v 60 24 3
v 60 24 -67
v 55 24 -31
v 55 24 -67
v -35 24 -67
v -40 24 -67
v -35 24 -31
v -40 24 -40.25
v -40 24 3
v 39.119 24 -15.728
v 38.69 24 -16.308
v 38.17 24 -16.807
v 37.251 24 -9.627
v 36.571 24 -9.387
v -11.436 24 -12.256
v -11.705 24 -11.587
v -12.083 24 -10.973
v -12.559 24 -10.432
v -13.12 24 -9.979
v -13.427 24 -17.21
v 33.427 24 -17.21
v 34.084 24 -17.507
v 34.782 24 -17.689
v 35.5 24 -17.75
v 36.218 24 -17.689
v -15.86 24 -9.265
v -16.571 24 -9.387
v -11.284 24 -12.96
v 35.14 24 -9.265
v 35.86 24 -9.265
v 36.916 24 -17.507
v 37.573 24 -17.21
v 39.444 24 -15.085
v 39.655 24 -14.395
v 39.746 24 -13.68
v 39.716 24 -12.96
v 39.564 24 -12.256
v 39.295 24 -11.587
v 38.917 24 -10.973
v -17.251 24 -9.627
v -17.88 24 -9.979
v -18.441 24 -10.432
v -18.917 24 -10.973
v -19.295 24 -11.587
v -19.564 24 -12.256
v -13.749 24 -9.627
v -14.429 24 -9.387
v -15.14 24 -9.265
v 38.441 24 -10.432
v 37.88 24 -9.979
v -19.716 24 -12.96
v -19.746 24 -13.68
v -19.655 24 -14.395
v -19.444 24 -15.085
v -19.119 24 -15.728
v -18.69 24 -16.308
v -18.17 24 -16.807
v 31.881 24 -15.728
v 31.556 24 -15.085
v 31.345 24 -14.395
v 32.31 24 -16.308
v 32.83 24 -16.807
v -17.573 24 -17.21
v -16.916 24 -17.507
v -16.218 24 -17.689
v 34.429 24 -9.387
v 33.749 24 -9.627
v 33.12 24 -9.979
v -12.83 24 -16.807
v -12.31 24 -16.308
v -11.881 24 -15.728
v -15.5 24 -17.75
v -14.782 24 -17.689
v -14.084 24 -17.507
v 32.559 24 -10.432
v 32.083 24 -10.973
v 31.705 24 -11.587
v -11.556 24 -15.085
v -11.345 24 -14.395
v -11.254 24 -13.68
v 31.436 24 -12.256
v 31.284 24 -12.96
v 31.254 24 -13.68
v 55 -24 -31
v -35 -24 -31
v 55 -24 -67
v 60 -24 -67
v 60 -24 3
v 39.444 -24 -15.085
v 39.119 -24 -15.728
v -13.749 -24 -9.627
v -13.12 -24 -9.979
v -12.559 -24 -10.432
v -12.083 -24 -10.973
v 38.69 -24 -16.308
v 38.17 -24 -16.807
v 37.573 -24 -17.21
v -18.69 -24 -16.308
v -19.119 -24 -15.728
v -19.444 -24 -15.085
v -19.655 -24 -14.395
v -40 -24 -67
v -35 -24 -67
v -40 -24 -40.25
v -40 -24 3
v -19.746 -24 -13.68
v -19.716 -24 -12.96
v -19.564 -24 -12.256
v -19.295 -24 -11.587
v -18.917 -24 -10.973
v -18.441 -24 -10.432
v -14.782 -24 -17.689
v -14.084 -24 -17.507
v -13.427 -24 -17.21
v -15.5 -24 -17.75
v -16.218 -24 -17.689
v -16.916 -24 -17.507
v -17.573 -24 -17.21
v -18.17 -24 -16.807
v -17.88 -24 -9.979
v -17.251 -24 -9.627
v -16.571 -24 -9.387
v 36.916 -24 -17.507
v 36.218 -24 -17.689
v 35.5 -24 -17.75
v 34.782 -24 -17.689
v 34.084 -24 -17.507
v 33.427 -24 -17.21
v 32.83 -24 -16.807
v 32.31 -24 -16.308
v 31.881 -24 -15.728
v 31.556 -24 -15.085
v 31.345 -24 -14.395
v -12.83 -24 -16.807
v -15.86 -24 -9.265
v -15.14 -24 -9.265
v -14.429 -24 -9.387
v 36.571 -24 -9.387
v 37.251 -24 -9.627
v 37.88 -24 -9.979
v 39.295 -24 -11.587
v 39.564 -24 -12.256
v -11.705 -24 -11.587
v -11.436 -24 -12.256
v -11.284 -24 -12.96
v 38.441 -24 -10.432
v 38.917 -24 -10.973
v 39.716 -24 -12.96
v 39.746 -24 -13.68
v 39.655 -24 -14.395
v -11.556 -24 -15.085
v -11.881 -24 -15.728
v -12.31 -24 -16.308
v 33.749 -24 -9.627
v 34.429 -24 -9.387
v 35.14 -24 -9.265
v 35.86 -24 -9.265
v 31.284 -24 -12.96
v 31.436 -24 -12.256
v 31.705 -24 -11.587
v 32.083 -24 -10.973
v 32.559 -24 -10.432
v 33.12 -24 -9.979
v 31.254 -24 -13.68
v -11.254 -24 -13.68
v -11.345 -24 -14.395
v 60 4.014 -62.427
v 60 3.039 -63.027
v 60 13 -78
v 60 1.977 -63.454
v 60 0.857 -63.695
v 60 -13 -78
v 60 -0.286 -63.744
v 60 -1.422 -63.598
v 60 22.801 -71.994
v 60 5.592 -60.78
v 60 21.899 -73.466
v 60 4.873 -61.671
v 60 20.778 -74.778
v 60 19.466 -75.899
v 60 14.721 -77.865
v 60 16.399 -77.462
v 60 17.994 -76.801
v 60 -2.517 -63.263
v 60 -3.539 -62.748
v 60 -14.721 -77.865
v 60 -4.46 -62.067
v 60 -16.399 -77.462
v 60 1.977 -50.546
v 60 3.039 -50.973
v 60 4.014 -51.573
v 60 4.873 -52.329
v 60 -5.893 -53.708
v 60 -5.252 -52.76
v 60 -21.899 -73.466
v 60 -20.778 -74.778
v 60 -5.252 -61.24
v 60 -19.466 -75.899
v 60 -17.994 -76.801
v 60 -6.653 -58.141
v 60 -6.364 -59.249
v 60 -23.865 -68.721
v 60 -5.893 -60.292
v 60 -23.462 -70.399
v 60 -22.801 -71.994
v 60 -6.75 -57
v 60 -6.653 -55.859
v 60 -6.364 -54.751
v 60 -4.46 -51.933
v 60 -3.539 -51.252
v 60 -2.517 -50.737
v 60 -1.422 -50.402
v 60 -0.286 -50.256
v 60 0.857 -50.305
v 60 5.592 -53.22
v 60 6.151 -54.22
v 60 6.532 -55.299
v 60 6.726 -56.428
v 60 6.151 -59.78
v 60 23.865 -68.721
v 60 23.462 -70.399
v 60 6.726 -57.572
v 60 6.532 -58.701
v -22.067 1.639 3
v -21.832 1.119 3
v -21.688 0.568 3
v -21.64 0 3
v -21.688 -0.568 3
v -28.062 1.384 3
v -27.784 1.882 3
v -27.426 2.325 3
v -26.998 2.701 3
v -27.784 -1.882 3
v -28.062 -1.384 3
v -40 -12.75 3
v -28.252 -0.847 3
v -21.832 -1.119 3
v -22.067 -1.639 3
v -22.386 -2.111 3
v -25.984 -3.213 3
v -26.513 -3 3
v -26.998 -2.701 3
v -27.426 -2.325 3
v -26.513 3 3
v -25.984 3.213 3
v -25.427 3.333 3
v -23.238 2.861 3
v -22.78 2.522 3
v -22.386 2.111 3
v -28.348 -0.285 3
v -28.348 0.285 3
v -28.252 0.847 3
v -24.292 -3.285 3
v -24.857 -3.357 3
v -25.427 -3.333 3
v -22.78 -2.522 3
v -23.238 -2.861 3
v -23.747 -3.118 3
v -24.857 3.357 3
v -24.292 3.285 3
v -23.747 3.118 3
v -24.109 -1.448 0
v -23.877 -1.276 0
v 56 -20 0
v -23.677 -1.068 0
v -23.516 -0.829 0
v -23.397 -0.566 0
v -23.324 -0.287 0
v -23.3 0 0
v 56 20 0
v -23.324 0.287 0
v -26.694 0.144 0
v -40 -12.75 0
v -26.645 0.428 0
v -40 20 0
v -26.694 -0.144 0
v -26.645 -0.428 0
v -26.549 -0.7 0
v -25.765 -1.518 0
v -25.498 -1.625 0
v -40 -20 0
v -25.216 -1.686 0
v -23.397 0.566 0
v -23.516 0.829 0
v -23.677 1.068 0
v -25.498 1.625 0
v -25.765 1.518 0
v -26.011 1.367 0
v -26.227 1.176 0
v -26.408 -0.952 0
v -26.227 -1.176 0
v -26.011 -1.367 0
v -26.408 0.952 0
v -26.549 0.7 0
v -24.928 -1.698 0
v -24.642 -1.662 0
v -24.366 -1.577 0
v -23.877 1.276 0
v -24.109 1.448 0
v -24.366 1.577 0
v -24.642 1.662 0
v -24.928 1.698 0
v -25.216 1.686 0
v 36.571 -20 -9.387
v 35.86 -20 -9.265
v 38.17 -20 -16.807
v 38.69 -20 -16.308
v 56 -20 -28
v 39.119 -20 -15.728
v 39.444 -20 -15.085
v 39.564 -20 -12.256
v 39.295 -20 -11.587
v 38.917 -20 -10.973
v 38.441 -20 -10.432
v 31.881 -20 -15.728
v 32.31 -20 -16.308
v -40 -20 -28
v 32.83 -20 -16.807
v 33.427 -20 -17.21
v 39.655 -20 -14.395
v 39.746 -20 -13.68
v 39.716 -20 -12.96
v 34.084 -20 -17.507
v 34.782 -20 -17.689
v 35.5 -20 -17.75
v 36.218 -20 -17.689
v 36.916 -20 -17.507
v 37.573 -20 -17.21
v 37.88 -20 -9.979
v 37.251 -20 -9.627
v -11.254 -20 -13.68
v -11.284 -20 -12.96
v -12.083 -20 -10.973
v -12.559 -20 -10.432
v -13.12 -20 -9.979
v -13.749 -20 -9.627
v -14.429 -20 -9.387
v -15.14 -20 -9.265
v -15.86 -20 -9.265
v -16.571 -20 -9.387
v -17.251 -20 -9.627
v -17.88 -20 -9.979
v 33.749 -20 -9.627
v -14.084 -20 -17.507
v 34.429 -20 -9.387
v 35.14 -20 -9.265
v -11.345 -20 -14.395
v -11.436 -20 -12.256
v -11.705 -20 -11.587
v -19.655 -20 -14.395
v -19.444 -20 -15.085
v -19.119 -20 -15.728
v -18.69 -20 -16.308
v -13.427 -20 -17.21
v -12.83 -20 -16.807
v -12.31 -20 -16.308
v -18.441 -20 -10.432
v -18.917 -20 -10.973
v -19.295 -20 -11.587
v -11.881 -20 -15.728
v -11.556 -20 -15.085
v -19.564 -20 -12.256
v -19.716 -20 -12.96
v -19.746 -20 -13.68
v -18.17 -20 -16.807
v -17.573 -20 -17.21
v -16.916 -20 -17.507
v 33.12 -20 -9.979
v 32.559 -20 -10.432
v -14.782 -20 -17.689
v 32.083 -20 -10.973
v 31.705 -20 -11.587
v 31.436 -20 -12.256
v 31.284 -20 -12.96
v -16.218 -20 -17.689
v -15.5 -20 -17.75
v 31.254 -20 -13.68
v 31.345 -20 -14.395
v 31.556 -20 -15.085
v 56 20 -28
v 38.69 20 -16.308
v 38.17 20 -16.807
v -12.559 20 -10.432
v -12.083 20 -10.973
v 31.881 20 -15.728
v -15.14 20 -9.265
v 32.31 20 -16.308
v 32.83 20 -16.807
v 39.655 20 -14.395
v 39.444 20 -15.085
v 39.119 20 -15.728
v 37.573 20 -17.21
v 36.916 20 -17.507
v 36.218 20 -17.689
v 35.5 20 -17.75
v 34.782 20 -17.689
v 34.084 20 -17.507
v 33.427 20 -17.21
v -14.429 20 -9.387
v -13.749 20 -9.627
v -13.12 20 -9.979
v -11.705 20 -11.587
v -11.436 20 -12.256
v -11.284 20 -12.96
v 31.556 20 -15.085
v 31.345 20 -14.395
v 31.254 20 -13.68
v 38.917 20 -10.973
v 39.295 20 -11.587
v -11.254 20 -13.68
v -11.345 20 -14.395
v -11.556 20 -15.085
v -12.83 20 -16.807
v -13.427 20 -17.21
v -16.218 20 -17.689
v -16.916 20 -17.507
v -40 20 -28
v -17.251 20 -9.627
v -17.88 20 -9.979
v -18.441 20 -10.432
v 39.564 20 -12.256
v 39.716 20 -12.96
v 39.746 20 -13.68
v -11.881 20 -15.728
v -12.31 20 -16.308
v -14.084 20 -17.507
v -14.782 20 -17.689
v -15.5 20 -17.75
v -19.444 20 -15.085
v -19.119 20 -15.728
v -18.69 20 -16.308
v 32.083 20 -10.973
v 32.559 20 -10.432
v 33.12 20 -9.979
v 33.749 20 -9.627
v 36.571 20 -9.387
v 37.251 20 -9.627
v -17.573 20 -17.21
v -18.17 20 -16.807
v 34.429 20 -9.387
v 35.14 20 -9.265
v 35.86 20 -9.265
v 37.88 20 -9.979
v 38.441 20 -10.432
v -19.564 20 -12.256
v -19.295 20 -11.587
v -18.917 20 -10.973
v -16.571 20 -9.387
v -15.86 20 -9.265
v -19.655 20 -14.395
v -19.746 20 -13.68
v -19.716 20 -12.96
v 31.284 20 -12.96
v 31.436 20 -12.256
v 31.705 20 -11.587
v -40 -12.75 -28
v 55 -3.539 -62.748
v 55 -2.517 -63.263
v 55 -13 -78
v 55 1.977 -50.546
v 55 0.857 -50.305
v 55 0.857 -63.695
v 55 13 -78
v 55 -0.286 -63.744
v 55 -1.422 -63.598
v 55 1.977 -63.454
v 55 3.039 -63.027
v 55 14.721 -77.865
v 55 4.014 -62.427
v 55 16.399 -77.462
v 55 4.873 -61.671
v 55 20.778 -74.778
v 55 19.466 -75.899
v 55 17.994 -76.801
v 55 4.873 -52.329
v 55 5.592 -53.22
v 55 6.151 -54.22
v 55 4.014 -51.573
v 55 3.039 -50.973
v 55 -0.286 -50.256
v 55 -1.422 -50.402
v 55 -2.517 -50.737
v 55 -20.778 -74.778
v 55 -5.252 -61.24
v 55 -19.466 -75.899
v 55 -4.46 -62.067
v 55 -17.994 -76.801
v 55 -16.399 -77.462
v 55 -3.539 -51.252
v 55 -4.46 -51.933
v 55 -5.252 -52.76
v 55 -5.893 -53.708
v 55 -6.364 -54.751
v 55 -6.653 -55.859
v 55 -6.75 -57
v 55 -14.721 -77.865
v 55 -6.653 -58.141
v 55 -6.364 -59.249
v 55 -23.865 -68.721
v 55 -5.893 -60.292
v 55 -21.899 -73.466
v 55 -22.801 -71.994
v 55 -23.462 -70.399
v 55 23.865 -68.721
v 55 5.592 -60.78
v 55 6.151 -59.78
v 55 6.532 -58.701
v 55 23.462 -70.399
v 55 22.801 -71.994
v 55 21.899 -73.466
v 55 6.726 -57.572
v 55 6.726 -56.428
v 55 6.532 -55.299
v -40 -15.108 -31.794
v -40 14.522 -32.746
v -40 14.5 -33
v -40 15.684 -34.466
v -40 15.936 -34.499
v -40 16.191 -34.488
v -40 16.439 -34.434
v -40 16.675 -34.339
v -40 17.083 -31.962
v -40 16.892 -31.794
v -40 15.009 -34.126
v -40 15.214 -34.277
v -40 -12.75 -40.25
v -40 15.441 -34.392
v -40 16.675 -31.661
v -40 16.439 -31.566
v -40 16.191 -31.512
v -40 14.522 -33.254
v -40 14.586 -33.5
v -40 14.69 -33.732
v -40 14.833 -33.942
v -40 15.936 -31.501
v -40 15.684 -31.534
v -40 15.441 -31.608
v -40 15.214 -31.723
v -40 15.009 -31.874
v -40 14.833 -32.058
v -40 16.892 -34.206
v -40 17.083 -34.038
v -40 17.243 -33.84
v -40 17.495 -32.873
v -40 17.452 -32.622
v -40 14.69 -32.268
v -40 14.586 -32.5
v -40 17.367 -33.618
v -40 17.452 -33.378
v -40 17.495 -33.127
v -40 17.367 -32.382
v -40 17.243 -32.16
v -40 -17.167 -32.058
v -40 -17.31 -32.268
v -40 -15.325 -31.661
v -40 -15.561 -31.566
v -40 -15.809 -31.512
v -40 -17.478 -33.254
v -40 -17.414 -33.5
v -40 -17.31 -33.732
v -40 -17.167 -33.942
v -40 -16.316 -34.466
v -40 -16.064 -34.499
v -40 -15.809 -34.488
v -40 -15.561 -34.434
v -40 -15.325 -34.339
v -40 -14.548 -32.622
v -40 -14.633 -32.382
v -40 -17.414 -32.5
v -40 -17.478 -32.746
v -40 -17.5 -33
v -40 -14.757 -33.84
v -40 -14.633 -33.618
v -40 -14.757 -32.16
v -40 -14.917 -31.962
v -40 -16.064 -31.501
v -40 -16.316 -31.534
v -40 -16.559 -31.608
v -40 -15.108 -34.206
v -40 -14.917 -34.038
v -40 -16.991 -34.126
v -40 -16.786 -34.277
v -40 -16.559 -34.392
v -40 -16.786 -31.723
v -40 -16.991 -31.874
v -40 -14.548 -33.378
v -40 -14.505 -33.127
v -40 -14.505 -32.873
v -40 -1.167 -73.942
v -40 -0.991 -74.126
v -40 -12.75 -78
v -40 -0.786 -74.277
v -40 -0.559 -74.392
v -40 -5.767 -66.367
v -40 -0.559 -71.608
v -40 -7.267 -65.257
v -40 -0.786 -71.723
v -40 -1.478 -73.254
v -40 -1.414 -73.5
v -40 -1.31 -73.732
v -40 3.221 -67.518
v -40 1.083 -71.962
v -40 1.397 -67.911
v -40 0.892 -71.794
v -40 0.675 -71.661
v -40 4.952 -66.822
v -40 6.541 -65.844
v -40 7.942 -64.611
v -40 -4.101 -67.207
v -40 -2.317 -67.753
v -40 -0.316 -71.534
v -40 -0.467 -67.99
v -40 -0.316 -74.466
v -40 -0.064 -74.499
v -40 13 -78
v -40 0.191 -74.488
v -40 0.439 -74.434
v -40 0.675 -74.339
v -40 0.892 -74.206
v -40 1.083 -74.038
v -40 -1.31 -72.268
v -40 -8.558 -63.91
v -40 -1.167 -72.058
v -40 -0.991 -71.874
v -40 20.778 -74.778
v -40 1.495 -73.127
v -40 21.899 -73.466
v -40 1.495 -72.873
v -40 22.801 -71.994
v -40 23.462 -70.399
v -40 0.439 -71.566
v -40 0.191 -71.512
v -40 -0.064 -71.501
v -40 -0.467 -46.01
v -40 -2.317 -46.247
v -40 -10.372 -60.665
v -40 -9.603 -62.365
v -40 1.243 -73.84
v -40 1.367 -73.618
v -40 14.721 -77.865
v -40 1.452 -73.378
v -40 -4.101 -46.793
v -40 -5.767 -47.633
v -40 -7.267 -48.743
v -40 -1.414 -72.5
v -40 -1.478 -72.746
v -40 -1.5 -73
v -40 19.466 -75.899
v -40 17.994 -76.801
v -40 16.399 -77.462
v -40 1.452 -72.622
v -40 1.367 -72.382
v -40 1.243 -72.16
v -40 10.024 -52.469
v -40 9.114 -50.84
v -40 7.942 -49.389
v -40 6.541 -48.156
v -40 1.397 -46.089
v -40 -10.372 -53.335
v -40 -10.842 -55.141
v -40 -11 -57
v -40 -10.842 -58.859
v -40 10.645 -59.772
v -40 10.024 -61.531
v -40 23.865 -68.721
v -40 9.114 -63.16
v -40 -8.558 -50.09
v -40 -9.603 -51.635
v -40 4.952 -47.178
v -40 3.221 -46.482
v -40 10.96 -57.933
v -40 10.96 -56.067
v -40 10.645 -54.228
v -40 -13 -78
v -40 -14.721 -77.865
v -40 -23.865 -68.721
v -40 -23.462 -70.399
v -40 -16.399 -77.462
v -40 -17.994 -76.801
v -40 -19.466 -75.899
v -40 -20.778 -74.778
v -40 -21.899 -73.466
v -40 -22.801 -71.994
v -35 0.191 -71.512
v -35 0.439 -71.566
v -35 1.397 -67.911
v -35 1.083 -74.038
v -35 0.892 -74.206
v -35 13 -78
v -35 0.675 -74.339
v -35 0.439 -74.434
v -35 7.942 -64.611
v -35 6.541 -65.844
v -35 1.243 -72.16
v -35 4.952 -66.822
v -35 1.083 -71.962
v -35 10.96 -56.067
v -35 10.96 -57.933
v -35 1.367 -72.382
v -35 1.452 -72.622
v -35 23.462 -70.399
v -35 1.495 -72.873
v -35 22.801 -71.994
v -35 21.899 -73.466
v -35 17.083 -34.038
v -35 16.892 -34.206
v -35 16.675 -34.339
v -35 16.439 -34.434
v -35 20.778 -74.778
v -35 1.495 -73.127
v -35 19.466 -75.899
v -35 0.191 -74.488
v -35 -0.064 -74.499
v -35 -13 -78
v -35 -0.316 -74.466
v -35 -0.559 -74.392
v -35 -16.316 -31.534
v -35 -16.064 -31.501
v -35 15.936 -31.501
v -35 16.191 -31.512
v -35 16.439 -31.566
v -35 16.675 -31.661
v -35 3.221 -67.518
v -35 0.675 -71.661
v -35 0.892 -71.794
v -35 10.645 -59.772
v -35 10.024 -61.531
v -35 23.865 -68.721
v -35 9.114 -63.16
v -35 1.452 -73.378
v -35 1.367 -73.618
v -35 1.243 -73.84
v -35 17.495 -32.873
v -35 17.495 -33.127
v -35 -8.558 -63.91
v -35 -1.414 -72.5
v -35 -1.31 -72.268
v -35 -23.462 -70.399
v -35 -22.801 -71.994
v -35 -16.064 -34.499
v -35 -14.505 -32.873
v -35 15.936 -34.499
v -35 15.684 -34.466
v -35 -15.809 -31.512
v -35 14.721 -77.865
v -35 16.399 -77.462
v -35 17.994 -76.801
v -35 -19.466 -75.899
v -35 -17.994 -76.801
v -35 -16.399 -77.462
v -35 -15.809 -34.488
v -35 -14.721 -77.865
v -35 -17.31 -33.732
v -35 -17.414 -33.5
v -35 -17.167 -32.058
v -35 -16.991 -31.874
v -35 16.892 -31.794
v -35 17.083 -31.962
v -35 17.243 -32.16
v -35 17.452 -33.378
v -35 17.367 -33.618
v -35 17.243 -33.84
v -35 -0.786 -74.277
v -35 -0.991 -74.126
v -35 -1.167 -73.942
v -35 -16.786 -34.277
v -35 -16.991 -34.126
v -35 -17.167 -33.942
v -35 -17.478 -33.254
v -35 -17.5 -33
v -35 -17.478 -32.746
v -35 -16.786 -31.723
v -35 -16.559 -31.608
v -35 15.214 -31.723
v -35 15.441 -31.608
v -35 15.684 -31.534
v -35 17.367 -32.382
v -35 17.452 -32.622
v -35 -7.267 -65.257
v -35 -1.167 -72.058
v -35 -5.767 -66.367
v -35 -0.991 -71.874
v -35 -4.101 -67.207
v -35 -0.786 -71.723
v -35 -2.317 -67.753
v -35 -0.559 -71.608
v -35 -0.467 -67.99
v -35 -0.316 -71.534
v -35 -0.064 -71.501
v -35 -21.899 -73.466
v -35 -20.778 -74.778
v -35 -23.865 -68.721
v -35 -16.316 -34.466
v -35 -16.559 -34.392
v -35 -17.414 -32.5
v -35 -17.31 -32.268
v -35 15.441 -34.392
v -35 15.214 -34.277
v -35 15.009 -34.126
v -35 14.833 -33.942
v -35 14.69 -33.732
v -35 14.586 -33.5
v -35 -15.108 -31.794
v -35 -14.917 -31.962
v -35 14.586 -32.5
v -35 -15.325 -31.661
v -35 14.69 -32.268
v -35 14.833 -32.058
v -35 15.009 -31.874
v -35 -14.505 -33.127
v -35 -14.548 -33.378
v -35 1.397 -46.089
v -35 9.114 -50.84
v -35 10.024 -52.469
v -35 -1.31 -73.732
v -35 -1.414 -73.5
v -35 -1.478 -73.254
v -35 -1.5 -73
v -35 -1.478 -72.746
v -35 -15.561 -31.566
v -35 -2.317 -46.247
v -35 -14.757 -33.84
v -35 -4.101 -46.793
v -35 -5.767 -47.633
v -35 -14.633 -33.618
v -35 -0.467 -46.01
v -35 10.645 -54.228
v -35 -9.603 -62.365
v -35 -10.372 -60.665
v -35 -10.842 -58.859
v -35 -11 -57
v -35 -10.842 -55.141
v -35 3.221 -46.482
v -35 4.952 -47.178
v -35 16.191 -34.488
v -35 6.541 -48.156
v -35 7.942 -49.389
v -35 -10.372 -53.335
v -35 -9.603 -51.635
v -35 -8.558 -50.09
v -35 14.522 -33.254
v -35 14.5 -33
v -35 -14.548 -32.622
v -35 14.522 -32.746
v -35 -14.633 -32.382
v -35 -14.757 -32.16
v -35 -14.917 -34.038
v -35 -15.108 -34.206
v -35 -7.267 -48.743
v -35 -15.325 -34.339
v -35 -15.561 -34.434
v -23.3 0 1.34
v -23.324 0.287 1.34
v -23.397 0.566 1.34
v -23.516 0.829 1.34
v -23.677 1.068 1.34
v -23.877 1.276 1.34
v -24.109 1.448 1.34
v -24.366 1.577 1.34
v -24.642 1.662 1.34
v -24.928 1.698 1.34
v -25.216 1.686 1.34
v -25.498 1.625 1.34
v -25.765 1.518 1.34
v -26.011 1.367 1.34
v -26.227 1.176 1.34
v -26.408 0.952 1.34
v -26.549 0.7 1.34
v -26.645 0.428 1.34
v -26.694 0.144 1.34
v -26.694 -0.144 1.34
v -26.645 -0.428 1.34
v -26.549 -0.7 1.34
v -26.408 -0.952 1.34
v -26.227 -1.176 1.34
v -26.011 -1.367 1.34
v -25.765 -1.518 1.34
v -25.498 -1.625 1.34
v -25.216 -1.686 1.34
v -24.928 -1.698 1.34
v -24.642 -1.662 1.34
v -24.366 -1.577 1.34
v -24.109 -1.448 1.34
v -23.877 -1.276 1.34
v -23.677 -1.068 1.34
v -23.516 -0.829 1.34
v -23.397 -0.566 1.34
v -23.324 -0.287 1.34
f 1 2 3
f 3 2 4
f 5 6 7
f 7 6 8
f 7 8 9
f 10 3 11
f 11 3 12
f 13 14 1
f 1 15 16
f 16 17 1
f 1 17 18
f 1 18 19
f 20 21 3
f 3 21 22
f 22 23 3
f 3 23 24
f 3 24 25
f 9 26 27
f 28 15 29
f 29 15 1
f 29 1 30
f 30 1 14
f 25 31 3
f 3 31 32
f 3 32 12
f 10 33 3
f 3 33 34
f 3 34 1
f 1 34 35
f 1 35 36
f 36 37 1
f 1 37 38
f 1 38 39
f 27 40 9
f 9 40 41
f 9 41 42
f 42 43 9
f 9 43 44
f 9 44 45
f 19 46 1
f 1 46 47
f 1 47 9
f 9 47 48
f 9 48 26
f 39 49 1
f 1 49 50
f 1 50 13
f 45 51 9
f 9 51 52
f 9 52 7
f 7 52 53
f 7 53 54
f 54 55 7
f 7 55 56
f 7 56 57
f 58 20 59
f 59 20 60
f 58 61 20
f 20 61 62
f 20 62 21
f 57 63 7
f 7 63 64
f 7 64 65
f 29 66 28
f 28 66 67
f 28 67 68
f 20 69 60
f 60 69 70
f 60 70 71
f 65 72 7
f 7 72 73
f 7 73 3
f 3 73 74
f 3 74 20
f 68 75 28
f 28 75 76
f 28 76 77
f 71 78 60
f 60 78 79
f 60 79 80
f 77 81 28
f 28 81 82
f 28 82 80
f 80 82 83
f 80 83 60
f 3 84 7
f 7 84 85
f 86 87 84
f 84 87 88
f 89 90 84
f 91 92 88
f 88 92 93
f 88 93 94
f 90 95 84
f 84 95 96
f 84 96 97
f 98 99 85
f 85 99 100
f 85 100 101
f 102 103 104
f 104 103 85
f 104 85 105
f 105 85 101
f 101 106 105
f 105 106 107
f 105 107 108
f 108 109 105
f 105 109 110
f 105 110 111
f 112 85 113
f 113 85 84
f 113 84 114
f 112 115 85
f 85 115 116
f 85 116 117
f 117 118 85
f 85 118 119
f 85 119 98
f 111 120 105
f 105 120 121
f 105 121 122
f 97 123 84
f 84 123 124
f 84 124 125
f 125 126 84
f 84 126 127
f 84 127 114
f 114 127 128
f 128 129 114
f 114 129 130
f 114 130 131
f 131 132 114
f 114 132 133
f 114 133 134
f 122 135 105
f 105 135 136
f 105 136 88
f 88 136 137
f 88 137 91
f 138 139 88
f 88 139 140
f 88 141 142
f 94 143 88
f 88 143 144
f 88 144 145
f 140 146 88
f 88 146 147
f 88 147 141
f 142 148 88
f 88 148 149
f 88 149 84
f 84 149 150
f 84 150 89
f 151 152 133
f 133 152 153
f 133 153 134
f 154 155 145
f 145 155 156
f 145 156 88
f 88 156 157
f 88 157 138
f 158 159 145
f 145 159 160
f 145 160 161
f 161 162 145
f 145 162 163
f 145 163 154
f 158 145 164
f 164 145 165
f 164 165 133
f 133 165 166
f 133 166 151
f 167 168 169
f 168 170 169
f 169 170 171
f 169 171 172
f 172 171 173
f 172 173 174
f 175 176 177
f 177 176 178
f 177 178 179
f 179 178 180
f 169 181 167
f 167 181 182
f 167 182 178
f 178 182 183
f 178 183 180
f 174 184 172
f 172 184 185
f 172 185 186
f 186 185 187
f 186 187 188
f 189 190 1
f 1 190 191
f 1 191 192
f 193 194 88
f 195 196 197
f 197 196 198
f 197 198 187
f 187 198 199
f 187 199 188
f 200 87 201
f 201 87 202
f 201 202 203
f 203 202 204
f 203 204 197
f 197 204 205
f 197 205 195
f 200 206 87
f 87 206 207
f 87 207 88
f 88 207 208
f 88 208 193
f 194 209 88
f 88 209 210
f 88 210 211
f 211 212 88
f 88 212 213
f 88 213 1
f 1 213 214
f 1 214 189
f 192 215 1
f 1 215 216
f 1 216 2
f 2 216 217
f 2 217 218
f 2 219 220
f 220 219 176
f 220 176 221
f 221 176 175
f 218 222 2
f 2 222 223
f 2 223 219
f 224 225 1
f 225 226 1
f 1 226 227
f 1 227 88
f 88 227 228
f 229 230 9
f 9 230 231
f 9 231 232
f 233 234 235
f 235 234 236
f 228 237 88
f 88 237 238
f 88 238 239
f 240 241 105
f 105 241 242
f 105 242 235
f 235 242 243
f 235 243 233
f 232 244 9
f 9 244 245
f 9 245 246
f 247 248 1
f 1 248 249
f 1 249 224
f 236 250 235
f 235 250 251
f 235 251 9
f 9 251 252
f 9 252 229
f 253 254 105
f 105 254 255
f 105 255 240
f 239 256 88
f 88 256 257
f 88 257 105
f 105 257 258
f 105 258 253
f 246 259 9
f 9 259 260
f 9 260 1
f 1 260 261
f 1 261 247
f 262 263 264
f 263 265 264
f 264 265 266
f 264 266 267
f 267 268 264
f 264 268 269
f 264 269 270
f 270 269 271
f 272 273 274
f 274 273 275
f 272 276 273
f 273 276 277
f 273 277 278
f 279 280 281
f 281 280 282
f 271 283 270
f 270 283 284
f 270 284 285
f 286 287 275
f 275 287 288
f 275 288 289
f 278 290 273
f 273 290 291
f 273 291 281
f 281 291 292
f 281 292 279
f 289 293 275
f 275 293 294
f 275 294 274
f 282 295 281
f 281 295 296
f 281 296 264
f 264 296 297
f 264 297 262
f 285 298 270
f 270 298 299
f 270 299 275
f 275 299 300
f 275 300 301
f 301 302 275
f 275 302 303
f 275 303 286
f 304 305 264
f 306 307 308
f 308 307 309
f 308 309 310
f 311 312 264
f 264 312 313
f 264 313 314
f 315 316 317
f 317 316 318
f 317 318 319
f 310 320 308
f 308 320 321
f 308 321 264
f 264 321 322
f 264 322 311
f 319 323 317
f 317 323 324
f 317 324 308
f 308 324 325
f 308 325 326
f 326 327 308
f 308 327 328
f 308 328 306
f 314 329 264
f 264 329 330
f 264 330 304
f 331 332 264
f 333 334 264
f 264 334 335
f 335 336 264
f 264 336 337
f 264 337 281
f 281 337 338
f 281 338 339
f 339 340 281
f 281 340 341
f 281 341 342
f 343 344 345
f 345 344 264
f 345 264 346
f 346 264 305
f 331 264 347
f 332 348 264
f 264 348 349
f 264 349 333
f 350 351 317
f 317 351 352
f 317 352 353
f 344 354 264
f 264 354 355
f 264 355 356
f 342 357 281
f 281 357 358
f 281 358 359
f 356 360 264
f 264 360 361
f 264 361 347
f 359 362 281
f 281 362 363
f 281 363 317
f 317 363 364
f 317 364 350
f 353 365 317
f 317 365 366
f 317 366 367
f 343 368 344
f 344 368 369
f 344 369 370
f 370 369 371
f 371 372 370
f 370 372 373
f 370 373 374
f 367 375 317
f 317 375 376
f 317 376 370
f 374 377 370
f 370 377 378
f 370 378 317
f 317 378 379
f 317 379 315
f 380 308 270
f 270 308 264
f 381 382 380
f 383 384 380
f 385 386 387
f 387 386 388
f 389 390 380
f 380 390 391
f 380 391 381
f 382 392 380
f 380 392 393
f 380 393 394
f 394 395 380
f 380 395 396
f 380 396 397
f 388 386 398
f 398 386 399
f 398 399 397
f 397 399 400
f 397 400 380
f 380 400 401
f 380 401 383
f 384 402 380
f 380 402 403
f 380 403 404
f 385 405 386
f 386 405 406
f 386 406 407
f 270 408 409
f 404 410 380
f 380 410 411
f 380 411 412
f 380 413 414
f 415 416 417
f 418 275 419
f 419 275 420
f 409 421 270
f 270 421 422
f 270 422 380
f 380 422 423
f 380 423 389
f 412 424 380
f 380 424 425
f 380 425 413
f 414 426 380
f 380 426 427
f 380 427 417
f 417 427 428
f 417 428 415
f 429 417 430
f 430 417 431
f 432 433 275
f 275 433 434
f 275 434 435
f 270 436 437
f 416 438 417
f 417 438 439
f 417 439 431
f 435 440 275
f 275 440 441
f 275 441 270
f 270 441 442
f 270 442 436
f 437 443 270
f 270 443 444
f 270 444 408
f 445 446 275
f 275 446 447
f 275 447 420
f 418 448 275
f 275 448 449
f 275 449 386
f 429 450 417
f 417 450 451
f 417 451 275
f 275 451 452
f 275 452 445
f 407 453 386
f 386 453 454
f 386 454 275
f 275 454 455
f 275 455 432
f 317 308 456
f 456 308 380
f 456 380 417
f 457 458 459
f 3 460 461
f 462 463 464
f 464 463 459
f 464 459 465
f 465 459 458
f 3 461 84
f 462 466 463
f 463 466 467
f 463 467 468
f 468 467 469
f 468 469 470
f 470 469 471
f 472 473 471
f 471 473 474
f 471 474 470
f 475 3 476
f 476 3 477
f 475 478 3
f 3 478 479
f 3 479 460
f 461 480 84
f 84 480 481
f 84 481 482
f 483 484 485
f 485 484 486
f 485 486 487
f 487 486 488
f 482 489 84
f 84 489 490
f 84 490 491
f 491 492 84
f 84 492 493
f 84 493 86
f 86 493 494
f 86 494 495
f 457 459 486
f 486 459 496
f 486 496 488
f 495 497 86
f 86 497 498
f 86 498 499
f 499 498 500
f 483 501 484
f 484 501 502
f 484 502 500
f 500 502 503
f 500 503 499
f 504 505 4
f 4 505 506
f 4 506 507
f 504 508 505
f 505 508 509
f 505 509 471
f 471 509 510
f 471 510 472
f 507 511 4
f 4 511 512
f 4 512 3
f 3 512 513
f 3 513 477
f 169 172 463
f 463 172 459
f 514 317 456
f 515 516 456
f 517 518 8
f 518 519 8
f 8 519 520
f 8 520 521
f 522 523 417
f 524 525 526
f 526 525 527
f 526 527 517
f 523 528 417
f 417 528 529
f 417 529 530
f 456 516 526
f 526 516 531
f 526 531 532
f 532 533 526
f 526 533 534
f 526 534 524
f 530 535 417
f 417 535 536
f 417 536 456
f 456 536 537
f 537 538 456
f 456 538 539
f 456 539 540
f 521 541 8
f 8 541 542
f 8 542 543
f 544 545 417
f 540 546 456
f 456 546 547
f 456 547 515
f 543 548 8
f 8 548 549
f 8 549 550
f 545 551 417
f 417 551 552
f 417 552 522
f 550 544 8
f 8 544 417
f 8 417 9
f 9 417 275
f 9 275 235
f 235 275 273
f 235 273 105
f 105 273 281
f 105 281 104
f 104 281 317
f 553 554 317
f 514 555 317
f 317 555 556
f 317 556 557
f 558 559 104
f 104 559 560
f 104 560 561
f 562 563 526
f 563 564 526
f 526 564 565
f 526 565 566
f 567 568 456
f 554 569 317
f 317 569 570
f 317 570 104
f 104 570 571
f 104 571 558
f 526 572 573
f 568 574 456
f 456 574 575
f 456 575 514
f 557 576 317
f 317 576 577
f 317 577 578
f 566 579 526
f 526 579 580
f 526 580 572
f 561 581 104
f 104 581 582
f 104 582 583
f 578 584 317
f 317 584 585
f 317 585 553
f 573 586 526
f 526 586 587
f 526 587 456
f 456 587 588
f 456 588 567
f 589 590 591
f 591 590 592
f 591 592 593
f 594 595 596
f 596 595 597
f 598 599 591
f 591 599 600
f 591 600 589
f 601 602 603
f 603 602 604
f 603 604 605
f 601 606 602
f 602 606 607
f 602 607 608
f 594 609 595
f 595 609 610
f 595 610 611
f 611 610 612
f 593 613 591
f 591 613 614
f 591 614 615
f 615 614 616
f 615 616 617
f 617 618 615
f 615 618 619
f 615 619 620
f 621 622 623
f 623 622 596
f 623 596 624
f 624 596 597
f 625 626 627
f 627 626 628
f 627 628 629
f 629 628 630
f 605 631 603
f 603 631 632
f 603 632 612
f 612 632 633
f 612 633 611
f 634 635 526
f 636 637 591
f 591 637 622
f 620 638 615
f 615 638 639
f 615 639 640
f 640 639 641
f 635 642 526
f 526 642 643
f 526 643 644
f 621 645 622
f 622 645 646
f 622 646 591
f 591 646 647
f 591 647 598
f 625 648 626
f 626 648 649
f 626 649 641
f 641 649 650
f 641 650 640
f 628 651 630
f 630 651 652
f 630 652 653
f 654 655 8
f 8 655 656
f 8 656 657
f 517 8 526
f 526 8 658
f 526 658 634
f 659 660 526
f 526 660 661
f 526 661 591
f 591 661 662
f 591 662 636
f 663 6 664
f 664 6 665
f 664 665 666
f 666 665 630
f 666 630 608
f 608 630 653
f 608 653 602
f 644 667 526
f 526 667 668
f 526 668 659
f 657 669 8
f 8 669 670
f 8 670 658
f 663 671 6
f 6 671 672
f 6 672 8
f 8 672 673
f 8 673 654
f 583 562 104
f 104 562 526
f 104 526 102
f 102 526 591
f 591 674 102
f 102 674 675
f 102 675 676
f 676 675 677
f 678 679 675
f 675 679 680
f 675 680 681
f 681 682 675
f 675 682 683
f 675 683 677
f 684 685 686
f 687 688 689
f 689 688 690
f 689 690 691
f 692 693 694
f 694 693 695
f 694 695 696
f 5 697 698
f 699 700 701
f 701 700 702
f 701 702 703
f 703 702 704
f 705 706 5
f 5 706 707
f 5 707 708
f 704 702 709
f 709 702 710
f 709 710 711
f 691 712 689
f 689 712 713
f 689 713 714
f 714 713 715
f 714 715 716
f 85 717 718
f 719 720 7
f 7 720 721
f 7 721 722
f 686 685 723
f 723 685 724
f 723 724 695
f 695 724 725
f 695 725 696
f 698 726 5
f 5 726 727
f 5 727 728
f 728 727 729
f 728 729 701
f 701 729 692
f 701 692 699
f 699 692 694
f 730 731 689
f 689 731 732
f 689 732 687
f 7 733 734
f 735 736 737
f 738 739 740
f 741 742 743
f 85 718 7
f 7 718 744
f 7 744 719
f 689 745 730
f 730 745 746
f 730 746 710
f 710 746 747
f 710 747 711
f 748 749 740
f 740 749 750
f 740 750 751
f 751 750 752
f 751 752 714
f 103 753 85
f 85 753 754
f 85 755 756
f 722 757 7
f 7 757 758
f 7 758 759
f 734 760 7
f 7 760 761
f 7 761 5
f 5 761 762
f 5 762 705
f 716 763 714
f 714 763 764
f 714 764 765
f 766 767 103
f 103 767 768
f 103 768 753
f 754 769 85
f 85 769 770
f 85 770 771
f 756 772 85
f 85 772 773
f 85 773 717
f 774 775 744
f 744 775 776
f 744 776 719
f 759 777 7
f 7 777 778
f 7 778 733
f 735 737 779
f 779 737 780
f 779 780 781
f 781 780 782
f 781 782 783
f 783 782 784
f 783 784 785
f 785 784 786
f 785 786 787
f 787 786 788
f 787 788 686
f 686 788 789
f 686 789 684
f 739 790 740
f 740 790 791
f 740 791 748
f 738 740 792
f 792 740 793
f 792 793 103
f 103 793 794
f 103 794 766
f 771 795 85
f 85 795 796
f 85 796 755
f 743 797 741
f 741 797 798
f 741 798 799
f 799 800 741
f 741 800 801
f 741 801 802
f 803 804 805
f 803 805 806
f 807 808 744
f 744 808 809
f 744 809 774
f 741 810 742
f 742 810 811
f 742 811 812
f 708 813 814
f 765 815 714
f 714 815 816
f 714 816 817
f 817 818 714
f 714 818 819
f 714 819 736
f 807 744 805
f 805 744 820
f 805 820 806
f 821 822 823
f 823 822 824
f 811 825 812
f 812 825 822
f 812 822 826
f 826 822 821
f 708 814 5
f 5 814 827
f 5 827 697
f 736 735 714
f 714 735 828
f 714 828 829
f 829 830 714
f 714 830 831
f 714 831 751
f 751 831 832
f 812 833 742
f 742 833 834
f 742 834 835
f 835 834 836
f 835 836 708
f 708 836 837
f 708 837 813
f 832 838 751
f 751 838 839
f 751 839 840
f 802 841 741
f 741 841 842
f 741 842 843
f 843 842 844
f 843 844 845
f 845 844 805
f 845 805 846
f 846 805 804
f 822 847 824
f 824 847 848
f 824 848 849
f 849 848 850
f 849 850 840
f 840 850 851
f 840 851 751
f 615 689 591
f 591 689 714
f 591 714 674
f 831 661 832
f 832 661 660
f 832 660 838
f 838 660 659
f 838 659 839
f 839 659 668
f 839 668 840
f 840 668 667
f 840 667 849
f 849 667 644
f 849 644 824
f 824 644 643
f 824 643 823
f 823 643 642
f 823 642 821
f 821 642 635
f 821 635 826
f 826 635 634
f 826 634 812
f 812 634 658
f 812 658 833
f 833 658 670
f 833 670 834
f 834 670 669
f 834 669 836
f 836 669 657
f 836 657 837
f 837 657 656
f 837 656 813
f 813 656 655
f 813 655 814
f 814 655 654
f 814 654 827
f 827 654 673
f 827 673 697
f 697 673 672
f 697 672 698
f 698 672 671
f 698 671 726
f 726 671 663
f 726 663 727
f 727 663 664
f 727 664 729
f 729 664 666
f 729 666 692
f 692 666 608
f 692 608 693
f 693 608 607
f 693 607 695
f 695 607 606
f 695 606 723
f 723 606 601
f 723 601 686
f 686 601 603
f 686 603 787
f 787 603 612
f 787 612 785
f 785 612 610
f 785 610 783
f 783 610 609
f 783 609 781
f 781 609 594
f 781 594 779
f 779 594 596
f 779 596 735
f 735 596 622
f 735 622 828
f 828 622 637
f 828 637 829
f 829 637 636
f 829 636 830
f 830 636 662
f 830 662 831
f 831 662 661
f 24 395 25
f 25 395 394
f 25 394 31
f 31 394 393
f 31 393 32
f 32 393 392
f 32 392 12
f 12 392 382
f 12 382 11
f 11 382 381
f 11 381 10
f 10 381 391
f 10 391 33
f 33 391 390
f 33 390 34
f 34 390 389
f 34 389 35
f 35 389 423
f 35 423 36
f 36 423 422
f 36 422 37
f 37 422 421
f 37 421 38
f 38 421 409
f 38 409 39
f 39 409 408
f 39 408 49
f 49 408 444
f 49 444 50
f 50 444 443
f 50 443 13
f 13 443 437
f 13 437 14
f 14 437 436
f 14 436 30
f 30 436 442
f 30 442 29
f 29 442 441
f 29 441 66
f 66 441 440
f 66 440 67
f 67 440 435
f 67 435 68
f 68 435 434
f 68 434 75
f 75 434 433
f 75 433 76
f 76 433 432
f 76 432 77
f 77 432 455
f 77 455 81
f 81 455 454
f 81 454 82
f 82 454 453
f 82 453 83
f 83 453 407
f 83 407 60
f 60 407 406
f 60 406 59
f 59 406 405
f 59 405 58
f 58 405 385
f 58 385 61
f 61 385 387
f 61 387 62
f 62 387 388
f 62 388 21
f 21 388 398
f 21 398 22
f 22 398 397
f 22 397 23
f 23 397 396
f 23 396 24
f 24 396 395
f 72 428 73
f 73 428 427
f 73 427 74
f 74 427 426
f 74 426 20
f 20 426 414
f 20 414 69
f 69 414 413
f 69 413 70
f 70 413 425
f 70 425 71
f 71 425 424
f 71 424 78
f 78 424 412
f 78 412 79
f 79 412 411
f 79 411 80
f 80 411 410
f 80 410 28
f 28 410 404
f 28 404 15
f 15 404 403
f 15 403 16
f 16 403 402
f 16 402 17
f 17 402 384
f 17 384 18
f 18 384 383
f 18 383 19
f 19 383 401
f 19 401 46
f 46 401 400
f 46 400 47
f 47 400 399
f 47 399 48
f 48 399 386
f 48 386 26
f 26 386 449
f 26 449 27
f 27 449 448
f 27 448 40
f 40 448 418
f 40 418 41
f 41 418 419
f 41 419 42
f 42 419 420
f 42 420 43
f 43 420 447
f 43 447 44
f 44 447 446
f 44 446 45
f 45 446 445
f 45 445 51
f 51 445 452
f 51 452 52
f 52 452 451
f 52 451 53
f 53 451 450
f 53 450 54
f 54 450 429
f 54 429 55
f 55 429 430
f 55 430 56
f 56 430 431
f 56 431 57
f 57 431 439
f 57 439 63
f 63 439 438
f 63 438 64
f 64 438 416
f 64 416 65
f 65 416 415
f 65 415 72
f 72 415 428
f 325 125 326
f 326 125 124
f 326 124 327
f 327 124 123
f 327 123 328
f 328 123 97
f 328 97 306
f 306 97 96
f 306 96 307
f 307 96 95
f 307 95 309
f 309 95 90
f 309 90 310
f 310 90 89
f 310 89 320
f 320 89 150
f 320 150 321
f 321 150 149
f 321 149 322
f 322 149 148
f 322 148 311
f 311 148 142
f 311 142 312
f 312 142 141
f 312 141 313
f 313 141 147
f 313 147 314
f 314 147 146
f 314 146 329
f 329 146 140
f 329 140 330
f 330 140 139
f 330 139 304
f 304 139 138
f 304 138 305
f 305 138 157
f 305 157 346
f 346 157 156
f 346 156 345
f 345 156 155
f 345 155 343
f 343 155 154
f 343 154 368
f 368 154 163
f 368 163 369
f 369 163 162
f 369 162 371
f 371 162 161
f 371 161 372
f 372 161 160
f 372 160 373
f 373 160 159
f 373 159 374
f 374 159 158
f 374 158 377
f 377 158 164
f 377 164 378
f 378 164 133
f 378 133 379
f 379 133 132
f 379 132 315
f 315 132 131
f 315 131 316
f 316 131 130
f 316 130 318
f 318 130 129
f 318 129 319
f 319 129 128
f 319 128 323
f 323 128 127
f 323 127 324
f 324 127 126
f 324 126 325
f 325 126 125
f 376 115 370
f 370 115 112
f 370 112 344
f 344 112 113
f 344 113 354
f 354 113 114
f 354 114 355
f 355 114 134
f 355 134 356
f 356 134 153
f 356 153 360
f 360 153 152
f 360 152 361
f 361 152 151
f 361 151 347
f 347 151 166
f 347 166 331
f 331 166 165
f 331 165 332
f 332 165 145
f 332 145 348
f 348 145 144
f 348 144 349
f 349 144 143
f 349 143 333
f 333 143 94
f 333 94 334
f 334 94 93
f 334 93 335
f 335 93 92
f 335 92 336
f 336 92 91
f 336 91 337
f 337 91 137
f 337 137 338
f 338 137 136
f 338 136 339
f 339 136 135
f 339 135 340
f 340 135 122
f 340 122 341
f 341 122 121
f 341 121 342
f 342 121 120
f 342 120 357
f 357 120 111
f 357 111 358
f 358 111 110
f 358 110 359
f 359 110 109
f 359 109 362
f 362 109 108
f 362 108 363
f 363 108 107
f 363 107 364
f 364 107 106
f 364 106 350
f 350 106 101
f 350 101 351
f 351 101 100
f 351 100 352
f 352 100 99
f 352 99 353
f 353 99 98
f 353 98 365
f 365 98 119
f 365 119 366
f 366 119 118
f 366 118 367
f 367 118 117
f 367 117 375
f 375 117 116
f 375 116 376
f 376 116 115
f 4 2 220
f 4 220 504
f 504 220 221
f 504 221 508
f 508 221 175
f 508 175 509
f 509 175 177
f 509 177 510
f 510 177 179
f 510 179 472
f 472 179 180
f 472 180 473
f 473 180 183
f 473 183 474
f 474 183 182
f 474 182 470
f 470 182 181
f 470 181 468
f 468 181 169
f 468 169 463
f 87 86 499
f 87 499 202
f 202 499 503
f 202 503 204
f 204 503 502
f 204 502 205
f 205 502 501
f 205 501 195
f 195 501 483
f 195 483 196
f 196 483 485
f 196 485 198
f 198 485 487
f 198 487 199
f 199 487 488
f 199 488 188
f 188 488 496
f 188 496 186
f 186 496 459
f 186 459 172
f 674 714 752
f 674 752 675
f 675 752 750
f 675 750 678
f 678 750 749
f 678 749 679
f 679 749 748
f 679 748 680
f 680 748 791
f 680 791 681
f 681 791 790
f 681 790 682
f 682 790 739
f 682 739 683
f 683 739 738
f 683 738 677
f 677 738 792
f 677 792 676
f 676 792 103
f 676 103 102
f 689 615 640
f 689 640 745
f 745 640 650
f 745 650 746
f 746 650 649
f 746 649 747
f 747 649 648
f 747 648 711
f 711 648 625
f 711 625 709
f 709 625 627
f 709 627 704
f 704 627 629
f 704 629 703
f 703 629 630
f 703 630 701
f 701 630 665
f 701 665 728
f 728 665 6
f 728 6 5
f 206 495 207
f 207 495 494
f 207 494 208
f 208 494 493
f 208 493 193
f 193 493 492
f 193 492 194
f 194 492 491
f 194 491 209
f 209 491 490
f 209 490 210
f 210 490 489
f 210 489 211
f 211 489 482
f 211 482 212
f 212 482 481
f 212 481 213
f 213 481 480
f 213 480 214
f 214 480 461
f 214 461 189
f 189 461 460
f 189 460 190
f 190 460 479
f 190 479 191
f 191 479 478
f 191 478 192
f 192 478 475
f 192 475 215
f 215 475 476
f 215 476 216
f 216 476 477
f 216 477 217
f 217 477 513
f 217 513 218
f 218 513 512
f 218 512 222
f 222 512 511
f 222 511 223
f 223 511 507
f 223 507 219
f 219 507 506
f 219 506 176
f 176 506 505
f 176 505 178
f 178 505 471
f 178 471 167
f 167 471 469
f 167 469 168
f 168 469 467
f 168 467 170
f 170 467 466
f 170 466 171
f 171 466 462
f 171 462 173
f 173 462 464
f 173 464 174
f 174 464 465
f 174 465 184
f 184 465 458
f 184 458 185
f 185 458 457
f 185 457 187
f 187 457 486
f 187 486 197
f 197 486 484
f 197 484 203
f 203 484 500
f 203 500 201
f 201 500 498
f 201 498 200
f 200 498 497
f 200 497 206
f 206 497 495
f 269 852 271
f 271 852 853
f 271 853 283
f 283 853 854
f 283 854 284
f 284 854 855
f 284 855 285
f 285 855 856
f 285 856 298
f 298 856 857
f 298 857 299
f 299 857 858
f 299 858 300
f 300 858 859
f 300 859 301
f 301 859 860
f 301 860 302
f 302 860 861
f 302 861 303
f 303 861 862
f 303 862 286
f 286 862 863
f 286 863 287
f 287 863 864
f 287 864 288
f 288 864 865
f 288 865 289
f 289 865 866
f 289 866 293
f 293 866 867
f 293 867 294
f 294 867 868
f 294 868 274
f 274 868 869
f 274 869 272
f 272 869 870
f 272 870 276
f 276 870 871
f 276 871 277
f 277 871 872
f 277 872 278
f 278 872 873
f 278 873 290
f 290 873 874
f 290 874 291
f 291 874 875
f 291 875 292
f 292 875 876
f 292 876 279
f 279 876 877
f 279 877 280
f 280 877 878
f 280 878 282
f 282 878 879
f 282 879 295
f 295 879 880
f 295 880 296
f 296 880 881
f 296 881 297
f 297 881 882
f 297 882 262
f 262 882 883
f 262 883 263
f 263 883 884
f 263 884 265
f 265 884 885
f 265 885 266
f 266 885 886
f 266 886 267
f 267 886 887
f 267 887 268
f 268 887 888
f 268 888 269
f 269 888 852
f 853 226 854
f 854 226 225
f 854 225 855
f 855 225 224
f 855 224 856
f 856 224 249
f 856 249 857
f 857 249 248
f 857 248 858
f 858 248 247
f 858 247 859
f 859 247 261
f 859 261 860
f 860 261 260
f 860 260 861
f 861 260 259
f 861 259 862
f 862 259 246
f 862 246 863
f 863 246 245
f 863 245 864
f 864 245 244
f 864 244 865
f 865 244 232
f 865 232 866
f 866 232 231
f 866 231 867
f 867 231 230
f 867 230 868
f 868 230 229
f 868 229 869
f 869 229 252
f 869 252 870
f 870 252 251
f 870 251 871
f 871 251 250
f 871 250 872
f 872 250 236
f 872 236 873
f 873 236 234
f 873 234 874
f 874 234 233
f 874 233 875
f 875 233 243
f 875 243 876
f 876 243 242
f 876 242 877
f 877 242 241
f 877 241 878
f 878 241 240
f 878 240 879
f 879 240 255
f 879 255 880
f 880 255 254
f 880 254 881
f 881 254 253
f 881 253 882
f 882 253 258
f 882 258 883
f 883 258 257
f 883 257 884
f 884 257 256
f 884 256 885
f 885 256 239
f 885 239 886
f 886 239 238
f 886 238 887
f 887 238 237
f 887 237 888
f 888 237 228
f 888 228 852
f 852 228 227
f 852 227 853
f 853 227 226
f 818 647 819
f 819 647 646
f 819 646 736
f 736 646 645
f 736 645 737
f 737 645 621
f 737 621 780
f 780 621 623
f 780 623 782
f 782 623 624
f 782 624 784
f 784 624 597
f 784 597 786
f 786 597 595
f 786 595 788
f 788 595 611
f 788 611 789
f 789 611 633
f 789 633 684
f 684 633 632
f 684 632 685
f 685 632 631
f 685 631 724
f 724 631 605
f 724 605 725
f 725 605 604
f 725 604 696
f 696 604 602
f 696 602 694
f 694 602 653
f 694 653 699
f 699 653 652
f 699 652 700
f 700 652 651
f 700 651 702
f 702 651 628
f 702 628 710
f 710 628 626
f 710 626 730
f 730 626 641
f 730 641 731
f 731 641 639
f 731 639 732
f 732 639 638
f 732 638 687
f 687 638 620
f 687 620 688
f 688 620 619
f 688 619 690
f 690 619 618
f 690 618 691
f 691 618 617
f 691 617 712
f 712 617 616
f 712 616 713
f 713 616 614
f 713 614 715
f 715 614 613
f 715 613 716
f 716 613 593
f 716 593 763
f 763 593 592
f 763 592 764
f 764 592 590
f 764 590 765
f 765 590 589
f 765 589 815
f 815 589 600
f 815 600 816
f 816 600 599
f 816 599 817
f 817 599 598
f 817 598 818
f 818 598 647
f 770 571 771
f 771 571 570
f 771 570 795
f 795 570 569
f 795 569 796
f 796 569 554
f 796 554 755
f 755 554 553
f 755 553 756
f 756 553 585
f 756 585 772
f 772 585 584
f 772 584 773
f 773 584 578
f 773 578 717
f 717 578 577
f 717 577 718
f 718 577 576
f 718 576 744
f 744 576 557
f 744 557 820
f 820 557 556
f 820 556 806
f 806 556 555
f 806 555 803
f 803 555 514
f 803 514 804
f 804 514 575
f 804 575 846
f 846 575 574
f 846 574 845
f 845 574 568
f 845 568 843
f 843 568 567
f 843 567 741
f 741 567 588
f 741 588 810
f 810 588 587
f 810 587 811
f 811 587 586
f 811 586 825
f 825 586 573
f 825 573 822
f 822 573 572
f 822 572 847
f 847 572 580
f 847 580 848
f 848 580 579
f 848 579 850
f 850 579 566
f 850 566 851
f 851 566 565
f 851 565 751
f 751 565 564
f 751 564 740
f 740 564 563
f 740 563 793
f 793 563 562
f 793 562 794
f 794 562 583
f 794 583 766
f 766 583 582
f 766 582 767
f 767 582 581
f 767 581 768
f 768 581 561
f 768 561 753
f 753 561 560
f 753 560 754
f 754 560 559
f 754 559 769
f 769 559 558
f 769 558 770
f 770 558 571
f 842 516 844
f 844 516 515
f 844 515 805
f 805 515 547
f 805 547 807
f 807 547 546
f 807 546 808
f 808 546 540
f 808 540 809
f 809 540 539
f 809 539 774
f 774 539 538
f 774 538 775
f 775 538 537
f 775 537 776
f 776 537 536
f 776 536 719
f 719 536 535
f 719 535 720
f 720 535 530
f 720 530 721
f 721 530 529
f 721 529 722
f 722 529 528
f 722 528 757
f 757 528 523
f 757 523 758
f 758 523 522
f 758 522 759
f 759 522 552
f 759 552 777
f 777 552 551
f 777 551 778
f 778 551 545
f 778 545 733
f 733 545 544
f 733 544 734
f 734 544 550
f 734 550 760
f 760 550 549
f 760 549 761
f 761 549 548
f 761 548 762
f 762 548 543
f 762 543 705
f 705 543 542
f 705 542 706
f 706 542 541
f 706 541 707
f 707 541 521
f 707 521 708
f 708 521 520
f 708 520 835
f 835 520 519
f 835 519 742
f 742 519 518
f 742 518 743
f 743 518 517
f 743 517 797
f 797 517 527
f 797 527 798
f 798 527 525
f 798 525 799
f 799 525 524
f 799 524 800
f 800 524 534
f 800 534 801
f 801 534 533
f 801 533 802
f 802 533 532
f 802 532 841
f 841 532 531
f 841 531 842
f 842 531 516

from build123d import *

# Parameters (mm, degrees)
ESBO_O1_W                            = 48
ESBO_O1_H                            = 120
RESSALTO_EXTRUS_O1_DEPTH             = 3
RESSALTO_EXTRUS_O2_DEPTH             = 28
ESBO_O3_W                            = 120
ESBO_O3_H                            = 48
RESSALTO_EXTRUS_O3_DEPTH             = 3
ESBO_O4_W                            = 5
ESBO_O4_H                            = 48
RESSALTO_EXTRUS_O4_DEPTH             = 47
ESBO_O5_R                            = 11
CORTE_EXTRUS_O1_DEPTH                = 5
ESBO_O6_R                            = 4.25
CORTE_EXTRUS_O2_DEPTH                = 110.489725545
FILETE1_R                            = 11
ESBO_O7_R                            = 6.75
CORTE_EXTRUS_O3_DEPTH                = 142.014183684
ESBO_O8_W                            = 20
ESBO_O8_H                            = 48
CORTE_EXTRUS_O4_DEPTH                = 80.906195004
ESBO_O12_R                           = 1.5
CORTE_EXTRUS_O5_DEPTH                = 3
ESCAREADO_PARA_SFHCS_M31_D           = 3.4
ESCAREADO_PARA_SFHCS_M31_DEPTH       = 3
ESCAREADO_PARA_SFHCS_M31_CSINK_D     = 6.72
ESCAREADO_PARA_SFHCS_M31_CSINK_ANGLE = 90
ESCAREADO_PARA_SFHCS_M31_TIP         = 1.021463052
ESBO_O18_R                           = 1.5
CORTE_EXTRUS_O6_DEPTH                = 5


with BuildPart() as part:
    # Esboço1 → Ressalto-extrusão1 (new body)
    with BuildSketch(Plane(origin=(0, 0, 0), x_dir=(0, 1, 0), z_dir=(0, 0, 1))):
        Rectangle(ESBO_O1_W, ESBO_O1_H)
    extrude(amount=RESSALTO_EXTRUS_O1_DEPTH)

    # Esboço2 → Ressalto-extrusão2 (add)
    with BuildSketch(Plane(origin=(0, 0, 0), x_dir=(1, 0, 0), z_dir=(0, 0, -1))):
        Polygon((-60, -20), (-60, -24), (60, -24), (60, 24), (-60, 24), (-60, 20), (56, 20), (56, -20), align=None)
    extrude(amount=RESSALTO_EXTRUS_O2_DEPTH)

    # Esboço3 → Ressalto-extrusão3 (add)
    with BuildSketch(Plane(origin=(0, 0, -28), x_dir=(1, 0, 0), z_dir=(0, 0, -1))):
        Rectangle(ESBO_O3_W, ESBO_O3_H)
    extrude(amount=RESSALTO_EXTRUS_O3_DEPTH)

    # Esboço4 → Ressalto-extrusão4 (add)
    with BuildSketch(Plane(origin=(0, 0, -31), x_dir=(1, 0, 0), z_dir=(0, 0, -1))):
        with Locations((-37.5, 0)):
            Rectangle(ESBO_O4_W, ESBO_O4_H)
        with Locations((57.5, 0)):
            Rectangle(ESBO_O4_W, ESBO_O4_H)
    extrude(amount=RESSALTO_EXTRUS_O4_DEPTH)

    # Esboço5 → Corte-extrusão1 (cut)
    with BuildSketch(Plane(origin=(-40, 0, 0), x_dir=(0, -1, 0), z_dir=(-1, 0, 0))):
        with Locations((0, -57)):
            Circle(ESBO_O5_R)
    extrude(amount=-CORTE_EXTRUS_O1_DEPTH, mode=Mode.SUBTRACT)

    # Esboço6 → Corte-extrusão2 (cut, through all)
    with BuildSketch(Plane.XZ.offset(24)):
        with Locations(Location((-15.5, -13.5, 0), (0, 0, 270))):
            Circle(ESBO_O6_R)
        with Locations(Location((35.5, -13.5, 0), (0, 0, 270))):
            Circle(ESBO_O6_R)
    extrude(amount=-CORTE_EXTRUS_O2_DEPTH, mode=Mode.SUBTRACT)

    # Filete1
    filete1_edges = [part.edges().sort_by_distance(p)[0] for p in [
        (-37.5, 24, -78),
        (-37.5, -24, -78),
        (57.5, -24, -78),
        (57.5, 24, -78),
    ]]
    fillet(filete1_edges, radius=FILETE1_R)

    # Esboço7 → Corte-extrusão3 (cut, through all)
    with BuildSketch(Plane(origin=(55, 0, 0), x_dir=(0, -1, 0), z_dir=(-1, 0, 0))):
        with Locations((0, -57)):
            Circle(ESBO_O7_R)
    extrude(amount=-CORTE_EXTRUS_O3_DEPTH, mode=Mode.SUBTRACT)

    # Esboço8 → Corte-extrusão4 (cut, through all)
    with BuildSketch(Plane(origin=(0, 0, -31), x_dir=(1, 0, 0), z_dir=(0, 0, -1))):
        with Locations((-50, 0)):
            Rectangle(ESBO_O8_W, ESBO_O8_H)
    extrude(amount=-CORTE_EXTRUS_O4_DEPTH, mode=Mode.SUBTRACT)

    # Esboço12 → Corte-extrusão5 (cut)
    with BuildSketch(Plane.XY.offset(3)):
        with Locations((-25, 0)):
            Circle(ESBO_O12_R)
    extrude(amount=-CORTE_EXTRUS_O5_DEPTH, mode=Mode.SUBTRACT)

    # Escareado para SFHCS M31
    with Locations(Plane(origin=(0, 0, 3), x_dir=(0, -1, 0), z_dir=(0, 0, 1))):
        with Locations((0, -25)):
            CounterSinkHole(ESCAREADO_PARA_SFHCS_M31_D / 2, ESCAREADO_PARA_SFHCS_M31_CSINK_D / 2, depth=ESCAREADO_PARA_SFHCS_M31_DEPTH, counter_sink_angle=ESCAREADO_PARA_SFHCS_M31_CSINK_ANGLE)
            with Locations((0, 0, -(ESCAREADO_PARA_SFHCS_M31_DEPTH + ESCAREADO_PARA_SFHCS_M31_TIP / 2))):  # 118° drill point
                Cone(0, ESCAREADO_PARA_SFHCS_M31_D / 2, ESCAREADO_PARA_SFHCS_M31_TIP, mode=Mode.SUBTRACT)

    # Esboço18 → Corte-extrusão6 (cut)
    with BuildSketch(Plane(origin=(-40, 0, 0), x_dir=(0, -1, 0), z_dir=(-1, 0, 0))):
        with Locations((-16, -33)):
            Circle(ESBO_O18_R)
        with Locations((16, -33)):
            Circle(ESBO_O18_R)
        with Locations((0, -73)):
            Circle(ESBO_O18_R)
    extrude(amount=-CORTE_EXTRUS_O6_DEPTH, mode=Mode.SUBTRACT)


solid = part.part
